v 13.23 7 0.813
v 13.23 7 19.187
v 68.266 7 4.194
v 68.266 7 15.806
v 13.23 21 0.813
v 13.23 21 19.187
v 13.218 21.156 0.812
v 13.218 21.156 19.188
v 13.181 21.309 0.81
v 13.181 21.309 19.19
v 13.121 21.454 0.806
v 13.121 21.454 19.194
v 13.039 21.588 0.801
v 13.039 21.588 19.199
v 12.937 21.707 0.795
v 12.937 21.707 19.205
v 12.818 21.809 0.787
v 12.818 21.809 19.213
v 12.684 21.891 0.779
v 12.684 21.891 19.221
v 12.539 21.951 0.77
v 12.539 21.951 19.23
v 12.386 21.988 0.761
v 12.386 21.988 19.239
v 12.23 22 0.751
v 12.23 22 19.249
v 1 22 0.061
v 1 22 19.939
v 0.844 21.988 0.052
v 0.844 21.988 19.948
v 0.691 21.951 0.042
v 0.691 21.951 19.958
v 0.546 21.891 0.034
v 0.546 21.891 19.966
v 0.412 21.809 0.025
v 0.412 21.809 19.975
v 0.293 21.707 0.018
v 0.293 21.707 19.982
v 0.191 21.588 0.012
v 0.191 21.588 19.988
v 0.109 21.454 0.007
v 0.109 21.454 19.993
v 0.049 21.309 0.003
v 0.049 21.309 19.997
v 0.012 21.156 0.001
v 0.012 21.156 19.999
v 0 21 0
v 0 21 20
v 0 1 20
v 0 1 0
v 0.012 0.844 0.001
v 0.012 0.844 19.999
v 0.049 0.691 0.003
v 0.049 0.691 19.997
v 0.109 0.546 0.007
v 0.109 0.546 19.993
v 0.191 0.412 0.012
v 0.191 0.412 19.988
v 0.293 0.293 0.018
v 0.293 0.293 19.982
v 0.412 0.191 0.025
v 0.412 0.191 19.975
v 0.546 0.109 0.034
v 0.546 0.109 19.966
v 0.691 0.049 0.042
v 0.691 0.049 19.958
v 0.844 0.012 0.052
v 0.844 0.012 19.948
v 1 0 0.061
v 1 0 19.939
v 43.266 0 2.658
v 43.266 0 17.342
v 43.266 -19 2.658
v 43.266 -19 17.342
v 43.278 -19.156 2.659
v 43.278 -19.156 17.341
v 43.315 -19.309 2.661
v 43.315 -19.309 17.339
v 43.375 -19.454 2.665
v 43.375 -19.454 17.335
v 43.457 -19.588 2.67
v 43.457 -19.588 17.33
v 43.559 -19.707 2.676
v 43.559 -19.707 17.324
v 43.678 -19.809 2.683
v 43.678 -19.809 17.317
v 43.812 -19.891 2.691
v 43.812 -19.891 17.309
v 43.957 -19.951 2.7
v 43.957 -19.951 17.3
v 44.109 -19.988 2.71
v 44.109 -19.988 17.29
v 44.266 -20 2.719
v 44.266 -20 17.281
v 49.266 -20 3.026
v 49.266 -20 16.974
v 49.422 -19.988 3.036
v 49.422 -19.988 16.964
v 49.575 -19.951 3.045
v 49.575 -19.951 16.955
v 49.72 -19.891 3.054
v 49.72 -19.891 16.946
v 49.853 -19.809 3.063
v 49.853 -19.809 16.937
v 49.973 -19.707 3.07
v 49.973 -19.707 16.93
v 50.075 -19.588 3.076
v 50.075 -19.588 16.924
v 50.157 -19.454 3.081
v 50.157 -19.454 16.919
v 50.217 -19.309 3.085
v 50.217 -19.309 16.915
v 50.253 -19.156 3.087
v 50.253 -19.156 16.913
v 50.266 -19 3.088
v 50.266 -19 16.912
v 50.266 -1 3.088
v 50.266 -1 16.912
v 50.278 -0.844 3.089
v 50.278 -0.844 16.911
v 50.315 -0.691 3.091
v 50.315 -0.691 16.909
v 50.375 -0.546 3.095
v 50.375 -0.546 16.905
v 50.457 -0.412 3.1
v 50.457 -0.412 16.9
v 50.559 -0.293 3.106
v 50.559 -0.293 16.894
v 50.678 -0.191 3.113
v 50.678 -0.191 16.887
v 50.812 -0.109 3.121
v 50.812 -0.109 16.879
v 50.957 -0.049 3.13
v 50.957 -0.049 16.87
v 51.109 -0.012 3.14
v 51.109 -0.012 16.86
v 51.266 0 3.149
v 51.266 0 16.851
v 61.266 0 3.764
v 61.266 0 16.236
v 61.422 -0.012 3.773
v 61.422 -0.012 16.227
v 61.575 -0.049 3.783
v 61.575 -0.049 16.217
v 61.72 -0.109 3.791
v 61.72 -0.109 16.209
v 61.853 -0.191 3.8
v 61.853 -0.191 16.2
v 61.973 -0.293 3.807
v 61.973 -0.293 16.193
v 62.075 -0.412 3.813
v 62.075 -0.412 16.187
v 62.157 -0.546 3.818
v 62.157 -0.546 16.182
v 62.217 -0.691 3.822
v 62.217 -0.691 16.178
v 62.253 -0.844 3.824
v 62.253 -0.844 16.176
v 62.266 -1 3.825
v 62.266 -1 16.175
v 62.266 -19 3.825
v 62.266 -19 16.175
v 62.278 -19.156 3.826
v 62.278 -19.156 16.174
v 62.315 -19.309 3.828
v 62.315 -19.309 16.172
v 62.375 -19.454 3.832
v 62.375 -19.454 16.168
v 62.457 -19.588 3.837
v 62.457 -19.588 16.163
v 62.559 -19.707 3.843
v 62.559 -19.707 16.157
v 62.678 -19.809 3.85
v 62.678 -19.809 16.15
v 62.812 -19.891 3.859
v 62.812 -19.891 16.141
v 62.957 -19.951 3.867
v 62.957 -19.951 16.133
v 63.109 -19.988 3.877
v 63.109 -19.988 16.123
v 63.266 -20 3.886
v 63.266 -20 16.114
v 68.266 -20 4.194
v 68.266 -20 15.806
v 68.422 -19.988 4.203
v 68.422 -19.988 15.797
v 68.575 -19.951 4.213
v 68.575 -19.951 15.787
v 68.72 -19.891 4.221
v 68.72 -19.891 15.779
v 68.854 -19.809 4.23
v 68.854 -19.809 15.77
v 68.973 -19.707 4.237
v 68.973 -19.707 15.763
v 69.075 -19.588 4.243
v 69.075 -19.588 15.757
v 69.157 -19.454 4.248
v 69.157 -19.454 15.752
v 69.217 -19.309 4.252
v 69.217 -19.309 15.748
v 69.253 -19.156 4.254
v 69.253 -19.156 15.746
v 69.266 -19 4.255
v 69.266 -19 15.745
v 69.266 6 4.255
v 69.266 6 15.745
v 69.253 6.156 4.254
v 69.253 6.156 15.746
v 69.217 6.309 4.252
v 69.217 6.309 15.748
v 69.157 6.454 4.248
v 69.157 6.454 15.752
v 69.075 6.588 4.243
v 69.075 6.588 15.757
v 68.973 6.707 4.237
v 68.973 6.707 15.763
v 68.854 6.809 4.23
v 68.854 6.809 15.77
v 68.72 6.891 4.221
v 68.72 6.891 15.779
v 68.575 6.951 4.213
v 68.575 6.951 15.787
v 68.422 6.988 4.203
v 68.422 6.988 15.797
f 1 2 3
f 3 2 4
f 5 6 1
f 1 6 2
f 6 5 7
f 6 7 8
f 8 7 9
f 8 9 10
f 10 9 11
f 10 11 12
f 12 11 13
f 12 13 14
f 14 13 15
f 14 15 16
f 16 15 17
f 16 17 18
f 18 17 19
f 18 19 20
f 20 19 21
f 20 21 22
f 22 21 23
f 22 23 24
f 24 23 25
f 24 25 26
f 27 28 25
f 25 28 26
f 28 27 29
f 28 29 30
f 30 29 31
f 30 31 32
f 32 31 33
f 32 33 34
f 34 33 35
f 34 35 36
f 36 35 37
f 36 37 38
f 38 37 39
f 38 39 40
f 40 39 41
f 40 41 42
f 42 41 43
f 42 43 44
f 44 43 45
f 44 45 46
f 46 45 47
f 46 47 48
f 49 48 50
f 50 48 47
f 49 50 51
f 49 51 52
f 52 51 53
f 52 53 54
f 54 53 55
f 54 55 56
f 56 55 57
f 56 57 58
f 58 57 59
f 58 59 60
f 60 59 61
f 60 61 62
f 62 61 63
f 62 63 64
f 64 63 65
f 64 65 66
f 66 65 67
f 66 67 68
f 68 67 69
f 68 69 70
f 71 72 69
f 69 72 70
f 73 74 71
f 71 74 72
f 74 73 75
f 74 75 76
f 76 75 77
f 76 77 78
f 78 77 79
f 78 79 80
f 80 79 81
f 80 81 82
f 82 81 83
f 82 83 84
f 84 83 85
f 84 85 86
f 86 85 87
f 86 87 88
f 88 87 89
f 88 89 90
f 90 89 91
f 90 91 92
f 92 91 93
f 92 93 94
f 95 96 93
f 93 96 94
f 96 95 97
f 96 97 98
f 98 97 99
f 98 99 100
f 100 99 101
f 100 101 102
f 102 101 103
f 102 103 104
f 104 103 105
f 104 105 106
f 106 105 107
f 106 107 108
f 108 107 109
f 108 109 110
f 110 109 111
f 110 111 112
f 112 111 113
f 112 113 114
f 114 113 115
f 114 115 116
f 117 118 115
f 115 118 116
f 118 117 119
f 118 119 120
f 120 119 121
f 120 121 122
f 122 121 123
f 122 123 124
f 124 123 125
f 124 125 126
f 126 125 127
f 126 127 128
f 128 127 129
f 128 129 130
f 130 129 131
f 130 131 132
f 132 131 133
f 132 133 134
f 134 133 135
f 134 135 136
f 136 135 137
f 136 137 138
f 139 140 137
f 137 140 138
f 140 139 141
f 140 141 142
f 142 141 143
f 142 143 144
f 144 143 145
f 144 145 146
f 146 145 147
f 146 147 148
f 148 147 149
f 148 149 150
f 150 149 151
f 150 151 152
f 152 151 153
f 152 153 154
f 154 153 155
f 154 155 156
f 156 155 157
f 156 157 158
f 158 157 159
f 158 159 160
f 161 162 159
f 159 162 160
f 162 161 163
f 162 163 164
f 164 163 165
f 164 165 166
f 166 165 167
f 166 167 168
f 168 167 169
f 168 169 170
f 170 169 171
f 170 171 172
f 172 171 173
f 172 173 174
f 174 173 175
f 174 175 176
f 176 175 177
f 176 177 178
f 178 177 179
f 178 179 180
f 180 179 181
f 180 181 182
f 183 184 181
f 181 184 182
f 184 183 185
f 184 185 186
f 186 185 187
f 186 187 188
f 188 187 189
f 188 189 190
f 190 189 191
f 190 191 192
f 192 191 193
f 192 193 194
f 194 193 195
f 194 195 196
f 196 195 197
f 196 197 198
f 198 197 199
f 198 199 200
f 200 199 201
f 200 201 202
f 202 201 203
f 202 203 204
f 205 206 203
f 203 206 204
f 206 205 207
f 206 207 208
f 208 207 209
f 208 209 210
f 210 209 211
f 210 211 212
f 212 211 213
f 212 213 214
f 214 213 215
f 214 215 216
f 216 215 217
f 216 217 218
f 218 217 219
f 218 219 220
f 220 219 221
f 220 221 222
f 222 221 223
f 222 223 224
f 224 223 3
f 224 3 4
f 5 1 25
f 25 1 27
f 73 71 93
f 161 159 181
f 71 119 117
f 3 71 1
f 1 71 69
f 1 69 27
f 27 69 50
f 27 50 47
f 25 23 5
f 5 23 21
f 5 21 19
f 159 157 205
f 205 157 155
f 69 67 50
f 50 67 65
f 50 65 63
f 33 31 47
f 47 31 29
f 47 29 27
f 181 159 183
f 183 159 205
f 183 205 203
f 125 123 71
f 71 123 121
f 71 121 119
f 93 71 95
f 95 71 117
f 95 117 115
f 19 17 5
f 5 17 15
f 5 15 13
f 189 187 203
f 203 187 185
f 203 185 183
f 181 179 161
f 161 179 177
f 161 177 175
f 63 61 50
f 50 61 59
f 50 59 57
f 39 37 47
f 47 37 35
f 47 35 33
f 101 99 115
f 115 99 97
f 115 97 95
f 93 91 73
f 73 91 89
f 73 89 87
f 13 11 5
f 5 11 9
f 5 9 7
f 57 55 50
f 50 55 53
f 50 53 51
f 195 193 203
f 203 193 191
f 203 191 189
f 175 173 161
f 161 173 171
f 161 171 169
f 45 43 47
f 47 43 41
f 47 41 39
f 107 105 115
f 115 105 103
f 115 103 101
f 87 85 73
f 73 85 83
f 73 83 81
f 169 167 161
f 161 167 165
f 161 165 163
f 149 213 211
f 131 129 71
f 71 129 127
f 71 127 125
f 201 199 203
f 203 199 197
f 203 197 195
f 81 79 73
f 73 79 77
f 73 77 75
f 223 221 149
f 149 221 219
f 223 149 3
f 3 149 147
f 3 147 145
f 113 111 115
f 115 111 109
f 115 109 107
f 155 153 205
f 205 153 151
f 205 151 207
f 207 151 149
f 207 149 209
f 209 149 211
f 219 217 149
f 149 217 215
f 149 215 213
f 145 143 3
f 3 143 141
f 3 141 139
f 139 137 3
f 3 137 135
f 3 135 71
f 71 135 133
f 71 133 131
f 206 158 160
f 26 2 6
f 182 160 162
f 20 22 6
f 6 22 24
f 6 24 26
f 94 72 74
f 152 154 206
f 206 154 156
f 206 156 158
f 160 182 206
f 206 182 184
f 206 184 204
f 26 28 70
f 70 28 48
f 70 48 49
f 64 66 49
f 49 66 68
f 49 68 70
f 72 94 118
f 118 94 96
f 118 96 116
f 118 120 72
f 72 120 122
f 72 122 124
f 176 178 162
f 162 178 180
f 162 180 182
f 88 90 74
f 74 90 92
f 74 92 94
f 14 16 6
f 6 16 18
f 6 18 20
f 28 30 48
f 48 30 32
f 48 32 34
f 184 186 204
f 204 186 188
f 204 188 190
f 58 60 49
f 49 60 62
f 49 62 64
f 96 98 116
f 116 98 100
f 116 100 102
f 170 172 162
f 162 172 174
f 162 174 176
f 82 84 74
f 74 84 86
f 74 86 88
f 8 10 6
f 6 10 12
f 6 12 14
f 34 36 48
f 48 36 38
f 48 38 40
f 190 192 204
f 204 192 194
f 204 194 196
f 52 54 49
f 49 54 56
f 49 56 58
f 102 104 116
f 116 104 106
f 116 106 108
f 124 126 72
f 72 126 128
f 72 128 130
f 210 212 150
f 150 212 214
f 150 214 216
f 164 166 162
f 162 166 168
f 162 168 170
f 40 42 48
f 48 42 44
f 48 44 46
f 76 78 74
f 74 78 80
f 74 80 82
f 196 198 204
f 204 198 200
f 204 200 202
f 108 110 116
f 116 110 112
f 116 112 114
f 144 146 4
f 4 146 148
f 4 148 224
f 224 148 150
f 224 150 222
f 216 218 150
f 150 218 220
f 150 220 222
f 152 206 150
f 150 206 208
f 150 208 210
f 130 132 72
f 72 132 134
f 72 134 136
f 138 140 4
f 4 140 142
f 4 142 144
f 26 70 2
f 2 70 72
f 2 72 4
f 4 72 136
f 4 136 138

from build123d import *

# Parameters (mm, degrees)
EXTRUDE_1_DEPTH     = 20
CUT_EXTRUDE_1_DEPTH = 82


with BuildPart() as part:
    # Эскиз1 → Бобышка-Вытянуть1 (new body)
    with BuildSketch(Plane.XY):
        with BuildLine():
            Line((0, 1), (0, 21))
            ThreePointArc((0, 21), (0.292893219, 21.707106781), (1, 22))
            Line((1, 22), (12.229943888, 22))
            ThreePointArc((12.229943888, 22), (12.937050669, 21.707106781), (13.229943888, 21))
            Line((13.229943888, 21), (13.229943888, 7))
            Line((13.229943888, 7), (41.229943888, 7))
            Line((41.229943888, 7), (68.26571085, 7))
            ThreePointArc((68.26571085, 7), (68.972817632, 6.707106781), (69.26571085, 6))
            Line((69.26571085, 6), (69.26571085, -19))
            ThreePointArc((69.26571085, -19), (68.972817632, -19.707106781), (68.26571085, -20))
            Line((68.26571085, -20), (63.26571085, -20))
            ThreePointArc((63.26571085, -20), (62.558604069, -19.707106781), (62.26571085, -19))
            Line((62.26571085, -19), (62.26571085, -1))
            ThreePointArc((62.26571085, -1), (61.972817632, -0.292893219), (61.26571085, 0))
            Line((61.26571085, 0), (51.26571085, 0))
            ThreePointArc((51.26571085, 0), (50.558604069, -0.292893219), (50.26571085, -1))
            Line((50.26571085, -1), (50.26571085, -19))
            ThreePointArc((50.26571085, -19), (49.972817632, -19.707106781), (49.26571085, -20))
            Line((49.26571085, -20), (44.26571085, -20))
            ThreePointArc((44.26571085, -20), (43.558604069, -19.707106781), (43.26571085, -19))
            Line((43.26571085, -19), (43.26571085, 0))
            Line((43.26571085, 0), (1, 0))
            ThreePointArc((1, 0), (0.292893219, 0.292893219), (0, 1))
        make_face()
    extrude(amount=EXTRUDE_1_DEPTH)

    # Эскиз2 → Вырез-Вытянуть1 (cut)
    with BuildSketch(Plane(origin=(0, 22, 0), x_dir=(1, 0, 0), z_dir=(0, 1, 0))):
        Polygon((81.392917707, -5), (0, 0), (88.471949447, 13.866629824), align=None)
        Polygon((81.392917707, -15), (0, -20), (97.493424041, -39.682856986), align=None)
    extrude(amount=-CUT_EXTRUDE_1_DEPTH, mode=Mode.SUBTRACT)


solid = part.part
